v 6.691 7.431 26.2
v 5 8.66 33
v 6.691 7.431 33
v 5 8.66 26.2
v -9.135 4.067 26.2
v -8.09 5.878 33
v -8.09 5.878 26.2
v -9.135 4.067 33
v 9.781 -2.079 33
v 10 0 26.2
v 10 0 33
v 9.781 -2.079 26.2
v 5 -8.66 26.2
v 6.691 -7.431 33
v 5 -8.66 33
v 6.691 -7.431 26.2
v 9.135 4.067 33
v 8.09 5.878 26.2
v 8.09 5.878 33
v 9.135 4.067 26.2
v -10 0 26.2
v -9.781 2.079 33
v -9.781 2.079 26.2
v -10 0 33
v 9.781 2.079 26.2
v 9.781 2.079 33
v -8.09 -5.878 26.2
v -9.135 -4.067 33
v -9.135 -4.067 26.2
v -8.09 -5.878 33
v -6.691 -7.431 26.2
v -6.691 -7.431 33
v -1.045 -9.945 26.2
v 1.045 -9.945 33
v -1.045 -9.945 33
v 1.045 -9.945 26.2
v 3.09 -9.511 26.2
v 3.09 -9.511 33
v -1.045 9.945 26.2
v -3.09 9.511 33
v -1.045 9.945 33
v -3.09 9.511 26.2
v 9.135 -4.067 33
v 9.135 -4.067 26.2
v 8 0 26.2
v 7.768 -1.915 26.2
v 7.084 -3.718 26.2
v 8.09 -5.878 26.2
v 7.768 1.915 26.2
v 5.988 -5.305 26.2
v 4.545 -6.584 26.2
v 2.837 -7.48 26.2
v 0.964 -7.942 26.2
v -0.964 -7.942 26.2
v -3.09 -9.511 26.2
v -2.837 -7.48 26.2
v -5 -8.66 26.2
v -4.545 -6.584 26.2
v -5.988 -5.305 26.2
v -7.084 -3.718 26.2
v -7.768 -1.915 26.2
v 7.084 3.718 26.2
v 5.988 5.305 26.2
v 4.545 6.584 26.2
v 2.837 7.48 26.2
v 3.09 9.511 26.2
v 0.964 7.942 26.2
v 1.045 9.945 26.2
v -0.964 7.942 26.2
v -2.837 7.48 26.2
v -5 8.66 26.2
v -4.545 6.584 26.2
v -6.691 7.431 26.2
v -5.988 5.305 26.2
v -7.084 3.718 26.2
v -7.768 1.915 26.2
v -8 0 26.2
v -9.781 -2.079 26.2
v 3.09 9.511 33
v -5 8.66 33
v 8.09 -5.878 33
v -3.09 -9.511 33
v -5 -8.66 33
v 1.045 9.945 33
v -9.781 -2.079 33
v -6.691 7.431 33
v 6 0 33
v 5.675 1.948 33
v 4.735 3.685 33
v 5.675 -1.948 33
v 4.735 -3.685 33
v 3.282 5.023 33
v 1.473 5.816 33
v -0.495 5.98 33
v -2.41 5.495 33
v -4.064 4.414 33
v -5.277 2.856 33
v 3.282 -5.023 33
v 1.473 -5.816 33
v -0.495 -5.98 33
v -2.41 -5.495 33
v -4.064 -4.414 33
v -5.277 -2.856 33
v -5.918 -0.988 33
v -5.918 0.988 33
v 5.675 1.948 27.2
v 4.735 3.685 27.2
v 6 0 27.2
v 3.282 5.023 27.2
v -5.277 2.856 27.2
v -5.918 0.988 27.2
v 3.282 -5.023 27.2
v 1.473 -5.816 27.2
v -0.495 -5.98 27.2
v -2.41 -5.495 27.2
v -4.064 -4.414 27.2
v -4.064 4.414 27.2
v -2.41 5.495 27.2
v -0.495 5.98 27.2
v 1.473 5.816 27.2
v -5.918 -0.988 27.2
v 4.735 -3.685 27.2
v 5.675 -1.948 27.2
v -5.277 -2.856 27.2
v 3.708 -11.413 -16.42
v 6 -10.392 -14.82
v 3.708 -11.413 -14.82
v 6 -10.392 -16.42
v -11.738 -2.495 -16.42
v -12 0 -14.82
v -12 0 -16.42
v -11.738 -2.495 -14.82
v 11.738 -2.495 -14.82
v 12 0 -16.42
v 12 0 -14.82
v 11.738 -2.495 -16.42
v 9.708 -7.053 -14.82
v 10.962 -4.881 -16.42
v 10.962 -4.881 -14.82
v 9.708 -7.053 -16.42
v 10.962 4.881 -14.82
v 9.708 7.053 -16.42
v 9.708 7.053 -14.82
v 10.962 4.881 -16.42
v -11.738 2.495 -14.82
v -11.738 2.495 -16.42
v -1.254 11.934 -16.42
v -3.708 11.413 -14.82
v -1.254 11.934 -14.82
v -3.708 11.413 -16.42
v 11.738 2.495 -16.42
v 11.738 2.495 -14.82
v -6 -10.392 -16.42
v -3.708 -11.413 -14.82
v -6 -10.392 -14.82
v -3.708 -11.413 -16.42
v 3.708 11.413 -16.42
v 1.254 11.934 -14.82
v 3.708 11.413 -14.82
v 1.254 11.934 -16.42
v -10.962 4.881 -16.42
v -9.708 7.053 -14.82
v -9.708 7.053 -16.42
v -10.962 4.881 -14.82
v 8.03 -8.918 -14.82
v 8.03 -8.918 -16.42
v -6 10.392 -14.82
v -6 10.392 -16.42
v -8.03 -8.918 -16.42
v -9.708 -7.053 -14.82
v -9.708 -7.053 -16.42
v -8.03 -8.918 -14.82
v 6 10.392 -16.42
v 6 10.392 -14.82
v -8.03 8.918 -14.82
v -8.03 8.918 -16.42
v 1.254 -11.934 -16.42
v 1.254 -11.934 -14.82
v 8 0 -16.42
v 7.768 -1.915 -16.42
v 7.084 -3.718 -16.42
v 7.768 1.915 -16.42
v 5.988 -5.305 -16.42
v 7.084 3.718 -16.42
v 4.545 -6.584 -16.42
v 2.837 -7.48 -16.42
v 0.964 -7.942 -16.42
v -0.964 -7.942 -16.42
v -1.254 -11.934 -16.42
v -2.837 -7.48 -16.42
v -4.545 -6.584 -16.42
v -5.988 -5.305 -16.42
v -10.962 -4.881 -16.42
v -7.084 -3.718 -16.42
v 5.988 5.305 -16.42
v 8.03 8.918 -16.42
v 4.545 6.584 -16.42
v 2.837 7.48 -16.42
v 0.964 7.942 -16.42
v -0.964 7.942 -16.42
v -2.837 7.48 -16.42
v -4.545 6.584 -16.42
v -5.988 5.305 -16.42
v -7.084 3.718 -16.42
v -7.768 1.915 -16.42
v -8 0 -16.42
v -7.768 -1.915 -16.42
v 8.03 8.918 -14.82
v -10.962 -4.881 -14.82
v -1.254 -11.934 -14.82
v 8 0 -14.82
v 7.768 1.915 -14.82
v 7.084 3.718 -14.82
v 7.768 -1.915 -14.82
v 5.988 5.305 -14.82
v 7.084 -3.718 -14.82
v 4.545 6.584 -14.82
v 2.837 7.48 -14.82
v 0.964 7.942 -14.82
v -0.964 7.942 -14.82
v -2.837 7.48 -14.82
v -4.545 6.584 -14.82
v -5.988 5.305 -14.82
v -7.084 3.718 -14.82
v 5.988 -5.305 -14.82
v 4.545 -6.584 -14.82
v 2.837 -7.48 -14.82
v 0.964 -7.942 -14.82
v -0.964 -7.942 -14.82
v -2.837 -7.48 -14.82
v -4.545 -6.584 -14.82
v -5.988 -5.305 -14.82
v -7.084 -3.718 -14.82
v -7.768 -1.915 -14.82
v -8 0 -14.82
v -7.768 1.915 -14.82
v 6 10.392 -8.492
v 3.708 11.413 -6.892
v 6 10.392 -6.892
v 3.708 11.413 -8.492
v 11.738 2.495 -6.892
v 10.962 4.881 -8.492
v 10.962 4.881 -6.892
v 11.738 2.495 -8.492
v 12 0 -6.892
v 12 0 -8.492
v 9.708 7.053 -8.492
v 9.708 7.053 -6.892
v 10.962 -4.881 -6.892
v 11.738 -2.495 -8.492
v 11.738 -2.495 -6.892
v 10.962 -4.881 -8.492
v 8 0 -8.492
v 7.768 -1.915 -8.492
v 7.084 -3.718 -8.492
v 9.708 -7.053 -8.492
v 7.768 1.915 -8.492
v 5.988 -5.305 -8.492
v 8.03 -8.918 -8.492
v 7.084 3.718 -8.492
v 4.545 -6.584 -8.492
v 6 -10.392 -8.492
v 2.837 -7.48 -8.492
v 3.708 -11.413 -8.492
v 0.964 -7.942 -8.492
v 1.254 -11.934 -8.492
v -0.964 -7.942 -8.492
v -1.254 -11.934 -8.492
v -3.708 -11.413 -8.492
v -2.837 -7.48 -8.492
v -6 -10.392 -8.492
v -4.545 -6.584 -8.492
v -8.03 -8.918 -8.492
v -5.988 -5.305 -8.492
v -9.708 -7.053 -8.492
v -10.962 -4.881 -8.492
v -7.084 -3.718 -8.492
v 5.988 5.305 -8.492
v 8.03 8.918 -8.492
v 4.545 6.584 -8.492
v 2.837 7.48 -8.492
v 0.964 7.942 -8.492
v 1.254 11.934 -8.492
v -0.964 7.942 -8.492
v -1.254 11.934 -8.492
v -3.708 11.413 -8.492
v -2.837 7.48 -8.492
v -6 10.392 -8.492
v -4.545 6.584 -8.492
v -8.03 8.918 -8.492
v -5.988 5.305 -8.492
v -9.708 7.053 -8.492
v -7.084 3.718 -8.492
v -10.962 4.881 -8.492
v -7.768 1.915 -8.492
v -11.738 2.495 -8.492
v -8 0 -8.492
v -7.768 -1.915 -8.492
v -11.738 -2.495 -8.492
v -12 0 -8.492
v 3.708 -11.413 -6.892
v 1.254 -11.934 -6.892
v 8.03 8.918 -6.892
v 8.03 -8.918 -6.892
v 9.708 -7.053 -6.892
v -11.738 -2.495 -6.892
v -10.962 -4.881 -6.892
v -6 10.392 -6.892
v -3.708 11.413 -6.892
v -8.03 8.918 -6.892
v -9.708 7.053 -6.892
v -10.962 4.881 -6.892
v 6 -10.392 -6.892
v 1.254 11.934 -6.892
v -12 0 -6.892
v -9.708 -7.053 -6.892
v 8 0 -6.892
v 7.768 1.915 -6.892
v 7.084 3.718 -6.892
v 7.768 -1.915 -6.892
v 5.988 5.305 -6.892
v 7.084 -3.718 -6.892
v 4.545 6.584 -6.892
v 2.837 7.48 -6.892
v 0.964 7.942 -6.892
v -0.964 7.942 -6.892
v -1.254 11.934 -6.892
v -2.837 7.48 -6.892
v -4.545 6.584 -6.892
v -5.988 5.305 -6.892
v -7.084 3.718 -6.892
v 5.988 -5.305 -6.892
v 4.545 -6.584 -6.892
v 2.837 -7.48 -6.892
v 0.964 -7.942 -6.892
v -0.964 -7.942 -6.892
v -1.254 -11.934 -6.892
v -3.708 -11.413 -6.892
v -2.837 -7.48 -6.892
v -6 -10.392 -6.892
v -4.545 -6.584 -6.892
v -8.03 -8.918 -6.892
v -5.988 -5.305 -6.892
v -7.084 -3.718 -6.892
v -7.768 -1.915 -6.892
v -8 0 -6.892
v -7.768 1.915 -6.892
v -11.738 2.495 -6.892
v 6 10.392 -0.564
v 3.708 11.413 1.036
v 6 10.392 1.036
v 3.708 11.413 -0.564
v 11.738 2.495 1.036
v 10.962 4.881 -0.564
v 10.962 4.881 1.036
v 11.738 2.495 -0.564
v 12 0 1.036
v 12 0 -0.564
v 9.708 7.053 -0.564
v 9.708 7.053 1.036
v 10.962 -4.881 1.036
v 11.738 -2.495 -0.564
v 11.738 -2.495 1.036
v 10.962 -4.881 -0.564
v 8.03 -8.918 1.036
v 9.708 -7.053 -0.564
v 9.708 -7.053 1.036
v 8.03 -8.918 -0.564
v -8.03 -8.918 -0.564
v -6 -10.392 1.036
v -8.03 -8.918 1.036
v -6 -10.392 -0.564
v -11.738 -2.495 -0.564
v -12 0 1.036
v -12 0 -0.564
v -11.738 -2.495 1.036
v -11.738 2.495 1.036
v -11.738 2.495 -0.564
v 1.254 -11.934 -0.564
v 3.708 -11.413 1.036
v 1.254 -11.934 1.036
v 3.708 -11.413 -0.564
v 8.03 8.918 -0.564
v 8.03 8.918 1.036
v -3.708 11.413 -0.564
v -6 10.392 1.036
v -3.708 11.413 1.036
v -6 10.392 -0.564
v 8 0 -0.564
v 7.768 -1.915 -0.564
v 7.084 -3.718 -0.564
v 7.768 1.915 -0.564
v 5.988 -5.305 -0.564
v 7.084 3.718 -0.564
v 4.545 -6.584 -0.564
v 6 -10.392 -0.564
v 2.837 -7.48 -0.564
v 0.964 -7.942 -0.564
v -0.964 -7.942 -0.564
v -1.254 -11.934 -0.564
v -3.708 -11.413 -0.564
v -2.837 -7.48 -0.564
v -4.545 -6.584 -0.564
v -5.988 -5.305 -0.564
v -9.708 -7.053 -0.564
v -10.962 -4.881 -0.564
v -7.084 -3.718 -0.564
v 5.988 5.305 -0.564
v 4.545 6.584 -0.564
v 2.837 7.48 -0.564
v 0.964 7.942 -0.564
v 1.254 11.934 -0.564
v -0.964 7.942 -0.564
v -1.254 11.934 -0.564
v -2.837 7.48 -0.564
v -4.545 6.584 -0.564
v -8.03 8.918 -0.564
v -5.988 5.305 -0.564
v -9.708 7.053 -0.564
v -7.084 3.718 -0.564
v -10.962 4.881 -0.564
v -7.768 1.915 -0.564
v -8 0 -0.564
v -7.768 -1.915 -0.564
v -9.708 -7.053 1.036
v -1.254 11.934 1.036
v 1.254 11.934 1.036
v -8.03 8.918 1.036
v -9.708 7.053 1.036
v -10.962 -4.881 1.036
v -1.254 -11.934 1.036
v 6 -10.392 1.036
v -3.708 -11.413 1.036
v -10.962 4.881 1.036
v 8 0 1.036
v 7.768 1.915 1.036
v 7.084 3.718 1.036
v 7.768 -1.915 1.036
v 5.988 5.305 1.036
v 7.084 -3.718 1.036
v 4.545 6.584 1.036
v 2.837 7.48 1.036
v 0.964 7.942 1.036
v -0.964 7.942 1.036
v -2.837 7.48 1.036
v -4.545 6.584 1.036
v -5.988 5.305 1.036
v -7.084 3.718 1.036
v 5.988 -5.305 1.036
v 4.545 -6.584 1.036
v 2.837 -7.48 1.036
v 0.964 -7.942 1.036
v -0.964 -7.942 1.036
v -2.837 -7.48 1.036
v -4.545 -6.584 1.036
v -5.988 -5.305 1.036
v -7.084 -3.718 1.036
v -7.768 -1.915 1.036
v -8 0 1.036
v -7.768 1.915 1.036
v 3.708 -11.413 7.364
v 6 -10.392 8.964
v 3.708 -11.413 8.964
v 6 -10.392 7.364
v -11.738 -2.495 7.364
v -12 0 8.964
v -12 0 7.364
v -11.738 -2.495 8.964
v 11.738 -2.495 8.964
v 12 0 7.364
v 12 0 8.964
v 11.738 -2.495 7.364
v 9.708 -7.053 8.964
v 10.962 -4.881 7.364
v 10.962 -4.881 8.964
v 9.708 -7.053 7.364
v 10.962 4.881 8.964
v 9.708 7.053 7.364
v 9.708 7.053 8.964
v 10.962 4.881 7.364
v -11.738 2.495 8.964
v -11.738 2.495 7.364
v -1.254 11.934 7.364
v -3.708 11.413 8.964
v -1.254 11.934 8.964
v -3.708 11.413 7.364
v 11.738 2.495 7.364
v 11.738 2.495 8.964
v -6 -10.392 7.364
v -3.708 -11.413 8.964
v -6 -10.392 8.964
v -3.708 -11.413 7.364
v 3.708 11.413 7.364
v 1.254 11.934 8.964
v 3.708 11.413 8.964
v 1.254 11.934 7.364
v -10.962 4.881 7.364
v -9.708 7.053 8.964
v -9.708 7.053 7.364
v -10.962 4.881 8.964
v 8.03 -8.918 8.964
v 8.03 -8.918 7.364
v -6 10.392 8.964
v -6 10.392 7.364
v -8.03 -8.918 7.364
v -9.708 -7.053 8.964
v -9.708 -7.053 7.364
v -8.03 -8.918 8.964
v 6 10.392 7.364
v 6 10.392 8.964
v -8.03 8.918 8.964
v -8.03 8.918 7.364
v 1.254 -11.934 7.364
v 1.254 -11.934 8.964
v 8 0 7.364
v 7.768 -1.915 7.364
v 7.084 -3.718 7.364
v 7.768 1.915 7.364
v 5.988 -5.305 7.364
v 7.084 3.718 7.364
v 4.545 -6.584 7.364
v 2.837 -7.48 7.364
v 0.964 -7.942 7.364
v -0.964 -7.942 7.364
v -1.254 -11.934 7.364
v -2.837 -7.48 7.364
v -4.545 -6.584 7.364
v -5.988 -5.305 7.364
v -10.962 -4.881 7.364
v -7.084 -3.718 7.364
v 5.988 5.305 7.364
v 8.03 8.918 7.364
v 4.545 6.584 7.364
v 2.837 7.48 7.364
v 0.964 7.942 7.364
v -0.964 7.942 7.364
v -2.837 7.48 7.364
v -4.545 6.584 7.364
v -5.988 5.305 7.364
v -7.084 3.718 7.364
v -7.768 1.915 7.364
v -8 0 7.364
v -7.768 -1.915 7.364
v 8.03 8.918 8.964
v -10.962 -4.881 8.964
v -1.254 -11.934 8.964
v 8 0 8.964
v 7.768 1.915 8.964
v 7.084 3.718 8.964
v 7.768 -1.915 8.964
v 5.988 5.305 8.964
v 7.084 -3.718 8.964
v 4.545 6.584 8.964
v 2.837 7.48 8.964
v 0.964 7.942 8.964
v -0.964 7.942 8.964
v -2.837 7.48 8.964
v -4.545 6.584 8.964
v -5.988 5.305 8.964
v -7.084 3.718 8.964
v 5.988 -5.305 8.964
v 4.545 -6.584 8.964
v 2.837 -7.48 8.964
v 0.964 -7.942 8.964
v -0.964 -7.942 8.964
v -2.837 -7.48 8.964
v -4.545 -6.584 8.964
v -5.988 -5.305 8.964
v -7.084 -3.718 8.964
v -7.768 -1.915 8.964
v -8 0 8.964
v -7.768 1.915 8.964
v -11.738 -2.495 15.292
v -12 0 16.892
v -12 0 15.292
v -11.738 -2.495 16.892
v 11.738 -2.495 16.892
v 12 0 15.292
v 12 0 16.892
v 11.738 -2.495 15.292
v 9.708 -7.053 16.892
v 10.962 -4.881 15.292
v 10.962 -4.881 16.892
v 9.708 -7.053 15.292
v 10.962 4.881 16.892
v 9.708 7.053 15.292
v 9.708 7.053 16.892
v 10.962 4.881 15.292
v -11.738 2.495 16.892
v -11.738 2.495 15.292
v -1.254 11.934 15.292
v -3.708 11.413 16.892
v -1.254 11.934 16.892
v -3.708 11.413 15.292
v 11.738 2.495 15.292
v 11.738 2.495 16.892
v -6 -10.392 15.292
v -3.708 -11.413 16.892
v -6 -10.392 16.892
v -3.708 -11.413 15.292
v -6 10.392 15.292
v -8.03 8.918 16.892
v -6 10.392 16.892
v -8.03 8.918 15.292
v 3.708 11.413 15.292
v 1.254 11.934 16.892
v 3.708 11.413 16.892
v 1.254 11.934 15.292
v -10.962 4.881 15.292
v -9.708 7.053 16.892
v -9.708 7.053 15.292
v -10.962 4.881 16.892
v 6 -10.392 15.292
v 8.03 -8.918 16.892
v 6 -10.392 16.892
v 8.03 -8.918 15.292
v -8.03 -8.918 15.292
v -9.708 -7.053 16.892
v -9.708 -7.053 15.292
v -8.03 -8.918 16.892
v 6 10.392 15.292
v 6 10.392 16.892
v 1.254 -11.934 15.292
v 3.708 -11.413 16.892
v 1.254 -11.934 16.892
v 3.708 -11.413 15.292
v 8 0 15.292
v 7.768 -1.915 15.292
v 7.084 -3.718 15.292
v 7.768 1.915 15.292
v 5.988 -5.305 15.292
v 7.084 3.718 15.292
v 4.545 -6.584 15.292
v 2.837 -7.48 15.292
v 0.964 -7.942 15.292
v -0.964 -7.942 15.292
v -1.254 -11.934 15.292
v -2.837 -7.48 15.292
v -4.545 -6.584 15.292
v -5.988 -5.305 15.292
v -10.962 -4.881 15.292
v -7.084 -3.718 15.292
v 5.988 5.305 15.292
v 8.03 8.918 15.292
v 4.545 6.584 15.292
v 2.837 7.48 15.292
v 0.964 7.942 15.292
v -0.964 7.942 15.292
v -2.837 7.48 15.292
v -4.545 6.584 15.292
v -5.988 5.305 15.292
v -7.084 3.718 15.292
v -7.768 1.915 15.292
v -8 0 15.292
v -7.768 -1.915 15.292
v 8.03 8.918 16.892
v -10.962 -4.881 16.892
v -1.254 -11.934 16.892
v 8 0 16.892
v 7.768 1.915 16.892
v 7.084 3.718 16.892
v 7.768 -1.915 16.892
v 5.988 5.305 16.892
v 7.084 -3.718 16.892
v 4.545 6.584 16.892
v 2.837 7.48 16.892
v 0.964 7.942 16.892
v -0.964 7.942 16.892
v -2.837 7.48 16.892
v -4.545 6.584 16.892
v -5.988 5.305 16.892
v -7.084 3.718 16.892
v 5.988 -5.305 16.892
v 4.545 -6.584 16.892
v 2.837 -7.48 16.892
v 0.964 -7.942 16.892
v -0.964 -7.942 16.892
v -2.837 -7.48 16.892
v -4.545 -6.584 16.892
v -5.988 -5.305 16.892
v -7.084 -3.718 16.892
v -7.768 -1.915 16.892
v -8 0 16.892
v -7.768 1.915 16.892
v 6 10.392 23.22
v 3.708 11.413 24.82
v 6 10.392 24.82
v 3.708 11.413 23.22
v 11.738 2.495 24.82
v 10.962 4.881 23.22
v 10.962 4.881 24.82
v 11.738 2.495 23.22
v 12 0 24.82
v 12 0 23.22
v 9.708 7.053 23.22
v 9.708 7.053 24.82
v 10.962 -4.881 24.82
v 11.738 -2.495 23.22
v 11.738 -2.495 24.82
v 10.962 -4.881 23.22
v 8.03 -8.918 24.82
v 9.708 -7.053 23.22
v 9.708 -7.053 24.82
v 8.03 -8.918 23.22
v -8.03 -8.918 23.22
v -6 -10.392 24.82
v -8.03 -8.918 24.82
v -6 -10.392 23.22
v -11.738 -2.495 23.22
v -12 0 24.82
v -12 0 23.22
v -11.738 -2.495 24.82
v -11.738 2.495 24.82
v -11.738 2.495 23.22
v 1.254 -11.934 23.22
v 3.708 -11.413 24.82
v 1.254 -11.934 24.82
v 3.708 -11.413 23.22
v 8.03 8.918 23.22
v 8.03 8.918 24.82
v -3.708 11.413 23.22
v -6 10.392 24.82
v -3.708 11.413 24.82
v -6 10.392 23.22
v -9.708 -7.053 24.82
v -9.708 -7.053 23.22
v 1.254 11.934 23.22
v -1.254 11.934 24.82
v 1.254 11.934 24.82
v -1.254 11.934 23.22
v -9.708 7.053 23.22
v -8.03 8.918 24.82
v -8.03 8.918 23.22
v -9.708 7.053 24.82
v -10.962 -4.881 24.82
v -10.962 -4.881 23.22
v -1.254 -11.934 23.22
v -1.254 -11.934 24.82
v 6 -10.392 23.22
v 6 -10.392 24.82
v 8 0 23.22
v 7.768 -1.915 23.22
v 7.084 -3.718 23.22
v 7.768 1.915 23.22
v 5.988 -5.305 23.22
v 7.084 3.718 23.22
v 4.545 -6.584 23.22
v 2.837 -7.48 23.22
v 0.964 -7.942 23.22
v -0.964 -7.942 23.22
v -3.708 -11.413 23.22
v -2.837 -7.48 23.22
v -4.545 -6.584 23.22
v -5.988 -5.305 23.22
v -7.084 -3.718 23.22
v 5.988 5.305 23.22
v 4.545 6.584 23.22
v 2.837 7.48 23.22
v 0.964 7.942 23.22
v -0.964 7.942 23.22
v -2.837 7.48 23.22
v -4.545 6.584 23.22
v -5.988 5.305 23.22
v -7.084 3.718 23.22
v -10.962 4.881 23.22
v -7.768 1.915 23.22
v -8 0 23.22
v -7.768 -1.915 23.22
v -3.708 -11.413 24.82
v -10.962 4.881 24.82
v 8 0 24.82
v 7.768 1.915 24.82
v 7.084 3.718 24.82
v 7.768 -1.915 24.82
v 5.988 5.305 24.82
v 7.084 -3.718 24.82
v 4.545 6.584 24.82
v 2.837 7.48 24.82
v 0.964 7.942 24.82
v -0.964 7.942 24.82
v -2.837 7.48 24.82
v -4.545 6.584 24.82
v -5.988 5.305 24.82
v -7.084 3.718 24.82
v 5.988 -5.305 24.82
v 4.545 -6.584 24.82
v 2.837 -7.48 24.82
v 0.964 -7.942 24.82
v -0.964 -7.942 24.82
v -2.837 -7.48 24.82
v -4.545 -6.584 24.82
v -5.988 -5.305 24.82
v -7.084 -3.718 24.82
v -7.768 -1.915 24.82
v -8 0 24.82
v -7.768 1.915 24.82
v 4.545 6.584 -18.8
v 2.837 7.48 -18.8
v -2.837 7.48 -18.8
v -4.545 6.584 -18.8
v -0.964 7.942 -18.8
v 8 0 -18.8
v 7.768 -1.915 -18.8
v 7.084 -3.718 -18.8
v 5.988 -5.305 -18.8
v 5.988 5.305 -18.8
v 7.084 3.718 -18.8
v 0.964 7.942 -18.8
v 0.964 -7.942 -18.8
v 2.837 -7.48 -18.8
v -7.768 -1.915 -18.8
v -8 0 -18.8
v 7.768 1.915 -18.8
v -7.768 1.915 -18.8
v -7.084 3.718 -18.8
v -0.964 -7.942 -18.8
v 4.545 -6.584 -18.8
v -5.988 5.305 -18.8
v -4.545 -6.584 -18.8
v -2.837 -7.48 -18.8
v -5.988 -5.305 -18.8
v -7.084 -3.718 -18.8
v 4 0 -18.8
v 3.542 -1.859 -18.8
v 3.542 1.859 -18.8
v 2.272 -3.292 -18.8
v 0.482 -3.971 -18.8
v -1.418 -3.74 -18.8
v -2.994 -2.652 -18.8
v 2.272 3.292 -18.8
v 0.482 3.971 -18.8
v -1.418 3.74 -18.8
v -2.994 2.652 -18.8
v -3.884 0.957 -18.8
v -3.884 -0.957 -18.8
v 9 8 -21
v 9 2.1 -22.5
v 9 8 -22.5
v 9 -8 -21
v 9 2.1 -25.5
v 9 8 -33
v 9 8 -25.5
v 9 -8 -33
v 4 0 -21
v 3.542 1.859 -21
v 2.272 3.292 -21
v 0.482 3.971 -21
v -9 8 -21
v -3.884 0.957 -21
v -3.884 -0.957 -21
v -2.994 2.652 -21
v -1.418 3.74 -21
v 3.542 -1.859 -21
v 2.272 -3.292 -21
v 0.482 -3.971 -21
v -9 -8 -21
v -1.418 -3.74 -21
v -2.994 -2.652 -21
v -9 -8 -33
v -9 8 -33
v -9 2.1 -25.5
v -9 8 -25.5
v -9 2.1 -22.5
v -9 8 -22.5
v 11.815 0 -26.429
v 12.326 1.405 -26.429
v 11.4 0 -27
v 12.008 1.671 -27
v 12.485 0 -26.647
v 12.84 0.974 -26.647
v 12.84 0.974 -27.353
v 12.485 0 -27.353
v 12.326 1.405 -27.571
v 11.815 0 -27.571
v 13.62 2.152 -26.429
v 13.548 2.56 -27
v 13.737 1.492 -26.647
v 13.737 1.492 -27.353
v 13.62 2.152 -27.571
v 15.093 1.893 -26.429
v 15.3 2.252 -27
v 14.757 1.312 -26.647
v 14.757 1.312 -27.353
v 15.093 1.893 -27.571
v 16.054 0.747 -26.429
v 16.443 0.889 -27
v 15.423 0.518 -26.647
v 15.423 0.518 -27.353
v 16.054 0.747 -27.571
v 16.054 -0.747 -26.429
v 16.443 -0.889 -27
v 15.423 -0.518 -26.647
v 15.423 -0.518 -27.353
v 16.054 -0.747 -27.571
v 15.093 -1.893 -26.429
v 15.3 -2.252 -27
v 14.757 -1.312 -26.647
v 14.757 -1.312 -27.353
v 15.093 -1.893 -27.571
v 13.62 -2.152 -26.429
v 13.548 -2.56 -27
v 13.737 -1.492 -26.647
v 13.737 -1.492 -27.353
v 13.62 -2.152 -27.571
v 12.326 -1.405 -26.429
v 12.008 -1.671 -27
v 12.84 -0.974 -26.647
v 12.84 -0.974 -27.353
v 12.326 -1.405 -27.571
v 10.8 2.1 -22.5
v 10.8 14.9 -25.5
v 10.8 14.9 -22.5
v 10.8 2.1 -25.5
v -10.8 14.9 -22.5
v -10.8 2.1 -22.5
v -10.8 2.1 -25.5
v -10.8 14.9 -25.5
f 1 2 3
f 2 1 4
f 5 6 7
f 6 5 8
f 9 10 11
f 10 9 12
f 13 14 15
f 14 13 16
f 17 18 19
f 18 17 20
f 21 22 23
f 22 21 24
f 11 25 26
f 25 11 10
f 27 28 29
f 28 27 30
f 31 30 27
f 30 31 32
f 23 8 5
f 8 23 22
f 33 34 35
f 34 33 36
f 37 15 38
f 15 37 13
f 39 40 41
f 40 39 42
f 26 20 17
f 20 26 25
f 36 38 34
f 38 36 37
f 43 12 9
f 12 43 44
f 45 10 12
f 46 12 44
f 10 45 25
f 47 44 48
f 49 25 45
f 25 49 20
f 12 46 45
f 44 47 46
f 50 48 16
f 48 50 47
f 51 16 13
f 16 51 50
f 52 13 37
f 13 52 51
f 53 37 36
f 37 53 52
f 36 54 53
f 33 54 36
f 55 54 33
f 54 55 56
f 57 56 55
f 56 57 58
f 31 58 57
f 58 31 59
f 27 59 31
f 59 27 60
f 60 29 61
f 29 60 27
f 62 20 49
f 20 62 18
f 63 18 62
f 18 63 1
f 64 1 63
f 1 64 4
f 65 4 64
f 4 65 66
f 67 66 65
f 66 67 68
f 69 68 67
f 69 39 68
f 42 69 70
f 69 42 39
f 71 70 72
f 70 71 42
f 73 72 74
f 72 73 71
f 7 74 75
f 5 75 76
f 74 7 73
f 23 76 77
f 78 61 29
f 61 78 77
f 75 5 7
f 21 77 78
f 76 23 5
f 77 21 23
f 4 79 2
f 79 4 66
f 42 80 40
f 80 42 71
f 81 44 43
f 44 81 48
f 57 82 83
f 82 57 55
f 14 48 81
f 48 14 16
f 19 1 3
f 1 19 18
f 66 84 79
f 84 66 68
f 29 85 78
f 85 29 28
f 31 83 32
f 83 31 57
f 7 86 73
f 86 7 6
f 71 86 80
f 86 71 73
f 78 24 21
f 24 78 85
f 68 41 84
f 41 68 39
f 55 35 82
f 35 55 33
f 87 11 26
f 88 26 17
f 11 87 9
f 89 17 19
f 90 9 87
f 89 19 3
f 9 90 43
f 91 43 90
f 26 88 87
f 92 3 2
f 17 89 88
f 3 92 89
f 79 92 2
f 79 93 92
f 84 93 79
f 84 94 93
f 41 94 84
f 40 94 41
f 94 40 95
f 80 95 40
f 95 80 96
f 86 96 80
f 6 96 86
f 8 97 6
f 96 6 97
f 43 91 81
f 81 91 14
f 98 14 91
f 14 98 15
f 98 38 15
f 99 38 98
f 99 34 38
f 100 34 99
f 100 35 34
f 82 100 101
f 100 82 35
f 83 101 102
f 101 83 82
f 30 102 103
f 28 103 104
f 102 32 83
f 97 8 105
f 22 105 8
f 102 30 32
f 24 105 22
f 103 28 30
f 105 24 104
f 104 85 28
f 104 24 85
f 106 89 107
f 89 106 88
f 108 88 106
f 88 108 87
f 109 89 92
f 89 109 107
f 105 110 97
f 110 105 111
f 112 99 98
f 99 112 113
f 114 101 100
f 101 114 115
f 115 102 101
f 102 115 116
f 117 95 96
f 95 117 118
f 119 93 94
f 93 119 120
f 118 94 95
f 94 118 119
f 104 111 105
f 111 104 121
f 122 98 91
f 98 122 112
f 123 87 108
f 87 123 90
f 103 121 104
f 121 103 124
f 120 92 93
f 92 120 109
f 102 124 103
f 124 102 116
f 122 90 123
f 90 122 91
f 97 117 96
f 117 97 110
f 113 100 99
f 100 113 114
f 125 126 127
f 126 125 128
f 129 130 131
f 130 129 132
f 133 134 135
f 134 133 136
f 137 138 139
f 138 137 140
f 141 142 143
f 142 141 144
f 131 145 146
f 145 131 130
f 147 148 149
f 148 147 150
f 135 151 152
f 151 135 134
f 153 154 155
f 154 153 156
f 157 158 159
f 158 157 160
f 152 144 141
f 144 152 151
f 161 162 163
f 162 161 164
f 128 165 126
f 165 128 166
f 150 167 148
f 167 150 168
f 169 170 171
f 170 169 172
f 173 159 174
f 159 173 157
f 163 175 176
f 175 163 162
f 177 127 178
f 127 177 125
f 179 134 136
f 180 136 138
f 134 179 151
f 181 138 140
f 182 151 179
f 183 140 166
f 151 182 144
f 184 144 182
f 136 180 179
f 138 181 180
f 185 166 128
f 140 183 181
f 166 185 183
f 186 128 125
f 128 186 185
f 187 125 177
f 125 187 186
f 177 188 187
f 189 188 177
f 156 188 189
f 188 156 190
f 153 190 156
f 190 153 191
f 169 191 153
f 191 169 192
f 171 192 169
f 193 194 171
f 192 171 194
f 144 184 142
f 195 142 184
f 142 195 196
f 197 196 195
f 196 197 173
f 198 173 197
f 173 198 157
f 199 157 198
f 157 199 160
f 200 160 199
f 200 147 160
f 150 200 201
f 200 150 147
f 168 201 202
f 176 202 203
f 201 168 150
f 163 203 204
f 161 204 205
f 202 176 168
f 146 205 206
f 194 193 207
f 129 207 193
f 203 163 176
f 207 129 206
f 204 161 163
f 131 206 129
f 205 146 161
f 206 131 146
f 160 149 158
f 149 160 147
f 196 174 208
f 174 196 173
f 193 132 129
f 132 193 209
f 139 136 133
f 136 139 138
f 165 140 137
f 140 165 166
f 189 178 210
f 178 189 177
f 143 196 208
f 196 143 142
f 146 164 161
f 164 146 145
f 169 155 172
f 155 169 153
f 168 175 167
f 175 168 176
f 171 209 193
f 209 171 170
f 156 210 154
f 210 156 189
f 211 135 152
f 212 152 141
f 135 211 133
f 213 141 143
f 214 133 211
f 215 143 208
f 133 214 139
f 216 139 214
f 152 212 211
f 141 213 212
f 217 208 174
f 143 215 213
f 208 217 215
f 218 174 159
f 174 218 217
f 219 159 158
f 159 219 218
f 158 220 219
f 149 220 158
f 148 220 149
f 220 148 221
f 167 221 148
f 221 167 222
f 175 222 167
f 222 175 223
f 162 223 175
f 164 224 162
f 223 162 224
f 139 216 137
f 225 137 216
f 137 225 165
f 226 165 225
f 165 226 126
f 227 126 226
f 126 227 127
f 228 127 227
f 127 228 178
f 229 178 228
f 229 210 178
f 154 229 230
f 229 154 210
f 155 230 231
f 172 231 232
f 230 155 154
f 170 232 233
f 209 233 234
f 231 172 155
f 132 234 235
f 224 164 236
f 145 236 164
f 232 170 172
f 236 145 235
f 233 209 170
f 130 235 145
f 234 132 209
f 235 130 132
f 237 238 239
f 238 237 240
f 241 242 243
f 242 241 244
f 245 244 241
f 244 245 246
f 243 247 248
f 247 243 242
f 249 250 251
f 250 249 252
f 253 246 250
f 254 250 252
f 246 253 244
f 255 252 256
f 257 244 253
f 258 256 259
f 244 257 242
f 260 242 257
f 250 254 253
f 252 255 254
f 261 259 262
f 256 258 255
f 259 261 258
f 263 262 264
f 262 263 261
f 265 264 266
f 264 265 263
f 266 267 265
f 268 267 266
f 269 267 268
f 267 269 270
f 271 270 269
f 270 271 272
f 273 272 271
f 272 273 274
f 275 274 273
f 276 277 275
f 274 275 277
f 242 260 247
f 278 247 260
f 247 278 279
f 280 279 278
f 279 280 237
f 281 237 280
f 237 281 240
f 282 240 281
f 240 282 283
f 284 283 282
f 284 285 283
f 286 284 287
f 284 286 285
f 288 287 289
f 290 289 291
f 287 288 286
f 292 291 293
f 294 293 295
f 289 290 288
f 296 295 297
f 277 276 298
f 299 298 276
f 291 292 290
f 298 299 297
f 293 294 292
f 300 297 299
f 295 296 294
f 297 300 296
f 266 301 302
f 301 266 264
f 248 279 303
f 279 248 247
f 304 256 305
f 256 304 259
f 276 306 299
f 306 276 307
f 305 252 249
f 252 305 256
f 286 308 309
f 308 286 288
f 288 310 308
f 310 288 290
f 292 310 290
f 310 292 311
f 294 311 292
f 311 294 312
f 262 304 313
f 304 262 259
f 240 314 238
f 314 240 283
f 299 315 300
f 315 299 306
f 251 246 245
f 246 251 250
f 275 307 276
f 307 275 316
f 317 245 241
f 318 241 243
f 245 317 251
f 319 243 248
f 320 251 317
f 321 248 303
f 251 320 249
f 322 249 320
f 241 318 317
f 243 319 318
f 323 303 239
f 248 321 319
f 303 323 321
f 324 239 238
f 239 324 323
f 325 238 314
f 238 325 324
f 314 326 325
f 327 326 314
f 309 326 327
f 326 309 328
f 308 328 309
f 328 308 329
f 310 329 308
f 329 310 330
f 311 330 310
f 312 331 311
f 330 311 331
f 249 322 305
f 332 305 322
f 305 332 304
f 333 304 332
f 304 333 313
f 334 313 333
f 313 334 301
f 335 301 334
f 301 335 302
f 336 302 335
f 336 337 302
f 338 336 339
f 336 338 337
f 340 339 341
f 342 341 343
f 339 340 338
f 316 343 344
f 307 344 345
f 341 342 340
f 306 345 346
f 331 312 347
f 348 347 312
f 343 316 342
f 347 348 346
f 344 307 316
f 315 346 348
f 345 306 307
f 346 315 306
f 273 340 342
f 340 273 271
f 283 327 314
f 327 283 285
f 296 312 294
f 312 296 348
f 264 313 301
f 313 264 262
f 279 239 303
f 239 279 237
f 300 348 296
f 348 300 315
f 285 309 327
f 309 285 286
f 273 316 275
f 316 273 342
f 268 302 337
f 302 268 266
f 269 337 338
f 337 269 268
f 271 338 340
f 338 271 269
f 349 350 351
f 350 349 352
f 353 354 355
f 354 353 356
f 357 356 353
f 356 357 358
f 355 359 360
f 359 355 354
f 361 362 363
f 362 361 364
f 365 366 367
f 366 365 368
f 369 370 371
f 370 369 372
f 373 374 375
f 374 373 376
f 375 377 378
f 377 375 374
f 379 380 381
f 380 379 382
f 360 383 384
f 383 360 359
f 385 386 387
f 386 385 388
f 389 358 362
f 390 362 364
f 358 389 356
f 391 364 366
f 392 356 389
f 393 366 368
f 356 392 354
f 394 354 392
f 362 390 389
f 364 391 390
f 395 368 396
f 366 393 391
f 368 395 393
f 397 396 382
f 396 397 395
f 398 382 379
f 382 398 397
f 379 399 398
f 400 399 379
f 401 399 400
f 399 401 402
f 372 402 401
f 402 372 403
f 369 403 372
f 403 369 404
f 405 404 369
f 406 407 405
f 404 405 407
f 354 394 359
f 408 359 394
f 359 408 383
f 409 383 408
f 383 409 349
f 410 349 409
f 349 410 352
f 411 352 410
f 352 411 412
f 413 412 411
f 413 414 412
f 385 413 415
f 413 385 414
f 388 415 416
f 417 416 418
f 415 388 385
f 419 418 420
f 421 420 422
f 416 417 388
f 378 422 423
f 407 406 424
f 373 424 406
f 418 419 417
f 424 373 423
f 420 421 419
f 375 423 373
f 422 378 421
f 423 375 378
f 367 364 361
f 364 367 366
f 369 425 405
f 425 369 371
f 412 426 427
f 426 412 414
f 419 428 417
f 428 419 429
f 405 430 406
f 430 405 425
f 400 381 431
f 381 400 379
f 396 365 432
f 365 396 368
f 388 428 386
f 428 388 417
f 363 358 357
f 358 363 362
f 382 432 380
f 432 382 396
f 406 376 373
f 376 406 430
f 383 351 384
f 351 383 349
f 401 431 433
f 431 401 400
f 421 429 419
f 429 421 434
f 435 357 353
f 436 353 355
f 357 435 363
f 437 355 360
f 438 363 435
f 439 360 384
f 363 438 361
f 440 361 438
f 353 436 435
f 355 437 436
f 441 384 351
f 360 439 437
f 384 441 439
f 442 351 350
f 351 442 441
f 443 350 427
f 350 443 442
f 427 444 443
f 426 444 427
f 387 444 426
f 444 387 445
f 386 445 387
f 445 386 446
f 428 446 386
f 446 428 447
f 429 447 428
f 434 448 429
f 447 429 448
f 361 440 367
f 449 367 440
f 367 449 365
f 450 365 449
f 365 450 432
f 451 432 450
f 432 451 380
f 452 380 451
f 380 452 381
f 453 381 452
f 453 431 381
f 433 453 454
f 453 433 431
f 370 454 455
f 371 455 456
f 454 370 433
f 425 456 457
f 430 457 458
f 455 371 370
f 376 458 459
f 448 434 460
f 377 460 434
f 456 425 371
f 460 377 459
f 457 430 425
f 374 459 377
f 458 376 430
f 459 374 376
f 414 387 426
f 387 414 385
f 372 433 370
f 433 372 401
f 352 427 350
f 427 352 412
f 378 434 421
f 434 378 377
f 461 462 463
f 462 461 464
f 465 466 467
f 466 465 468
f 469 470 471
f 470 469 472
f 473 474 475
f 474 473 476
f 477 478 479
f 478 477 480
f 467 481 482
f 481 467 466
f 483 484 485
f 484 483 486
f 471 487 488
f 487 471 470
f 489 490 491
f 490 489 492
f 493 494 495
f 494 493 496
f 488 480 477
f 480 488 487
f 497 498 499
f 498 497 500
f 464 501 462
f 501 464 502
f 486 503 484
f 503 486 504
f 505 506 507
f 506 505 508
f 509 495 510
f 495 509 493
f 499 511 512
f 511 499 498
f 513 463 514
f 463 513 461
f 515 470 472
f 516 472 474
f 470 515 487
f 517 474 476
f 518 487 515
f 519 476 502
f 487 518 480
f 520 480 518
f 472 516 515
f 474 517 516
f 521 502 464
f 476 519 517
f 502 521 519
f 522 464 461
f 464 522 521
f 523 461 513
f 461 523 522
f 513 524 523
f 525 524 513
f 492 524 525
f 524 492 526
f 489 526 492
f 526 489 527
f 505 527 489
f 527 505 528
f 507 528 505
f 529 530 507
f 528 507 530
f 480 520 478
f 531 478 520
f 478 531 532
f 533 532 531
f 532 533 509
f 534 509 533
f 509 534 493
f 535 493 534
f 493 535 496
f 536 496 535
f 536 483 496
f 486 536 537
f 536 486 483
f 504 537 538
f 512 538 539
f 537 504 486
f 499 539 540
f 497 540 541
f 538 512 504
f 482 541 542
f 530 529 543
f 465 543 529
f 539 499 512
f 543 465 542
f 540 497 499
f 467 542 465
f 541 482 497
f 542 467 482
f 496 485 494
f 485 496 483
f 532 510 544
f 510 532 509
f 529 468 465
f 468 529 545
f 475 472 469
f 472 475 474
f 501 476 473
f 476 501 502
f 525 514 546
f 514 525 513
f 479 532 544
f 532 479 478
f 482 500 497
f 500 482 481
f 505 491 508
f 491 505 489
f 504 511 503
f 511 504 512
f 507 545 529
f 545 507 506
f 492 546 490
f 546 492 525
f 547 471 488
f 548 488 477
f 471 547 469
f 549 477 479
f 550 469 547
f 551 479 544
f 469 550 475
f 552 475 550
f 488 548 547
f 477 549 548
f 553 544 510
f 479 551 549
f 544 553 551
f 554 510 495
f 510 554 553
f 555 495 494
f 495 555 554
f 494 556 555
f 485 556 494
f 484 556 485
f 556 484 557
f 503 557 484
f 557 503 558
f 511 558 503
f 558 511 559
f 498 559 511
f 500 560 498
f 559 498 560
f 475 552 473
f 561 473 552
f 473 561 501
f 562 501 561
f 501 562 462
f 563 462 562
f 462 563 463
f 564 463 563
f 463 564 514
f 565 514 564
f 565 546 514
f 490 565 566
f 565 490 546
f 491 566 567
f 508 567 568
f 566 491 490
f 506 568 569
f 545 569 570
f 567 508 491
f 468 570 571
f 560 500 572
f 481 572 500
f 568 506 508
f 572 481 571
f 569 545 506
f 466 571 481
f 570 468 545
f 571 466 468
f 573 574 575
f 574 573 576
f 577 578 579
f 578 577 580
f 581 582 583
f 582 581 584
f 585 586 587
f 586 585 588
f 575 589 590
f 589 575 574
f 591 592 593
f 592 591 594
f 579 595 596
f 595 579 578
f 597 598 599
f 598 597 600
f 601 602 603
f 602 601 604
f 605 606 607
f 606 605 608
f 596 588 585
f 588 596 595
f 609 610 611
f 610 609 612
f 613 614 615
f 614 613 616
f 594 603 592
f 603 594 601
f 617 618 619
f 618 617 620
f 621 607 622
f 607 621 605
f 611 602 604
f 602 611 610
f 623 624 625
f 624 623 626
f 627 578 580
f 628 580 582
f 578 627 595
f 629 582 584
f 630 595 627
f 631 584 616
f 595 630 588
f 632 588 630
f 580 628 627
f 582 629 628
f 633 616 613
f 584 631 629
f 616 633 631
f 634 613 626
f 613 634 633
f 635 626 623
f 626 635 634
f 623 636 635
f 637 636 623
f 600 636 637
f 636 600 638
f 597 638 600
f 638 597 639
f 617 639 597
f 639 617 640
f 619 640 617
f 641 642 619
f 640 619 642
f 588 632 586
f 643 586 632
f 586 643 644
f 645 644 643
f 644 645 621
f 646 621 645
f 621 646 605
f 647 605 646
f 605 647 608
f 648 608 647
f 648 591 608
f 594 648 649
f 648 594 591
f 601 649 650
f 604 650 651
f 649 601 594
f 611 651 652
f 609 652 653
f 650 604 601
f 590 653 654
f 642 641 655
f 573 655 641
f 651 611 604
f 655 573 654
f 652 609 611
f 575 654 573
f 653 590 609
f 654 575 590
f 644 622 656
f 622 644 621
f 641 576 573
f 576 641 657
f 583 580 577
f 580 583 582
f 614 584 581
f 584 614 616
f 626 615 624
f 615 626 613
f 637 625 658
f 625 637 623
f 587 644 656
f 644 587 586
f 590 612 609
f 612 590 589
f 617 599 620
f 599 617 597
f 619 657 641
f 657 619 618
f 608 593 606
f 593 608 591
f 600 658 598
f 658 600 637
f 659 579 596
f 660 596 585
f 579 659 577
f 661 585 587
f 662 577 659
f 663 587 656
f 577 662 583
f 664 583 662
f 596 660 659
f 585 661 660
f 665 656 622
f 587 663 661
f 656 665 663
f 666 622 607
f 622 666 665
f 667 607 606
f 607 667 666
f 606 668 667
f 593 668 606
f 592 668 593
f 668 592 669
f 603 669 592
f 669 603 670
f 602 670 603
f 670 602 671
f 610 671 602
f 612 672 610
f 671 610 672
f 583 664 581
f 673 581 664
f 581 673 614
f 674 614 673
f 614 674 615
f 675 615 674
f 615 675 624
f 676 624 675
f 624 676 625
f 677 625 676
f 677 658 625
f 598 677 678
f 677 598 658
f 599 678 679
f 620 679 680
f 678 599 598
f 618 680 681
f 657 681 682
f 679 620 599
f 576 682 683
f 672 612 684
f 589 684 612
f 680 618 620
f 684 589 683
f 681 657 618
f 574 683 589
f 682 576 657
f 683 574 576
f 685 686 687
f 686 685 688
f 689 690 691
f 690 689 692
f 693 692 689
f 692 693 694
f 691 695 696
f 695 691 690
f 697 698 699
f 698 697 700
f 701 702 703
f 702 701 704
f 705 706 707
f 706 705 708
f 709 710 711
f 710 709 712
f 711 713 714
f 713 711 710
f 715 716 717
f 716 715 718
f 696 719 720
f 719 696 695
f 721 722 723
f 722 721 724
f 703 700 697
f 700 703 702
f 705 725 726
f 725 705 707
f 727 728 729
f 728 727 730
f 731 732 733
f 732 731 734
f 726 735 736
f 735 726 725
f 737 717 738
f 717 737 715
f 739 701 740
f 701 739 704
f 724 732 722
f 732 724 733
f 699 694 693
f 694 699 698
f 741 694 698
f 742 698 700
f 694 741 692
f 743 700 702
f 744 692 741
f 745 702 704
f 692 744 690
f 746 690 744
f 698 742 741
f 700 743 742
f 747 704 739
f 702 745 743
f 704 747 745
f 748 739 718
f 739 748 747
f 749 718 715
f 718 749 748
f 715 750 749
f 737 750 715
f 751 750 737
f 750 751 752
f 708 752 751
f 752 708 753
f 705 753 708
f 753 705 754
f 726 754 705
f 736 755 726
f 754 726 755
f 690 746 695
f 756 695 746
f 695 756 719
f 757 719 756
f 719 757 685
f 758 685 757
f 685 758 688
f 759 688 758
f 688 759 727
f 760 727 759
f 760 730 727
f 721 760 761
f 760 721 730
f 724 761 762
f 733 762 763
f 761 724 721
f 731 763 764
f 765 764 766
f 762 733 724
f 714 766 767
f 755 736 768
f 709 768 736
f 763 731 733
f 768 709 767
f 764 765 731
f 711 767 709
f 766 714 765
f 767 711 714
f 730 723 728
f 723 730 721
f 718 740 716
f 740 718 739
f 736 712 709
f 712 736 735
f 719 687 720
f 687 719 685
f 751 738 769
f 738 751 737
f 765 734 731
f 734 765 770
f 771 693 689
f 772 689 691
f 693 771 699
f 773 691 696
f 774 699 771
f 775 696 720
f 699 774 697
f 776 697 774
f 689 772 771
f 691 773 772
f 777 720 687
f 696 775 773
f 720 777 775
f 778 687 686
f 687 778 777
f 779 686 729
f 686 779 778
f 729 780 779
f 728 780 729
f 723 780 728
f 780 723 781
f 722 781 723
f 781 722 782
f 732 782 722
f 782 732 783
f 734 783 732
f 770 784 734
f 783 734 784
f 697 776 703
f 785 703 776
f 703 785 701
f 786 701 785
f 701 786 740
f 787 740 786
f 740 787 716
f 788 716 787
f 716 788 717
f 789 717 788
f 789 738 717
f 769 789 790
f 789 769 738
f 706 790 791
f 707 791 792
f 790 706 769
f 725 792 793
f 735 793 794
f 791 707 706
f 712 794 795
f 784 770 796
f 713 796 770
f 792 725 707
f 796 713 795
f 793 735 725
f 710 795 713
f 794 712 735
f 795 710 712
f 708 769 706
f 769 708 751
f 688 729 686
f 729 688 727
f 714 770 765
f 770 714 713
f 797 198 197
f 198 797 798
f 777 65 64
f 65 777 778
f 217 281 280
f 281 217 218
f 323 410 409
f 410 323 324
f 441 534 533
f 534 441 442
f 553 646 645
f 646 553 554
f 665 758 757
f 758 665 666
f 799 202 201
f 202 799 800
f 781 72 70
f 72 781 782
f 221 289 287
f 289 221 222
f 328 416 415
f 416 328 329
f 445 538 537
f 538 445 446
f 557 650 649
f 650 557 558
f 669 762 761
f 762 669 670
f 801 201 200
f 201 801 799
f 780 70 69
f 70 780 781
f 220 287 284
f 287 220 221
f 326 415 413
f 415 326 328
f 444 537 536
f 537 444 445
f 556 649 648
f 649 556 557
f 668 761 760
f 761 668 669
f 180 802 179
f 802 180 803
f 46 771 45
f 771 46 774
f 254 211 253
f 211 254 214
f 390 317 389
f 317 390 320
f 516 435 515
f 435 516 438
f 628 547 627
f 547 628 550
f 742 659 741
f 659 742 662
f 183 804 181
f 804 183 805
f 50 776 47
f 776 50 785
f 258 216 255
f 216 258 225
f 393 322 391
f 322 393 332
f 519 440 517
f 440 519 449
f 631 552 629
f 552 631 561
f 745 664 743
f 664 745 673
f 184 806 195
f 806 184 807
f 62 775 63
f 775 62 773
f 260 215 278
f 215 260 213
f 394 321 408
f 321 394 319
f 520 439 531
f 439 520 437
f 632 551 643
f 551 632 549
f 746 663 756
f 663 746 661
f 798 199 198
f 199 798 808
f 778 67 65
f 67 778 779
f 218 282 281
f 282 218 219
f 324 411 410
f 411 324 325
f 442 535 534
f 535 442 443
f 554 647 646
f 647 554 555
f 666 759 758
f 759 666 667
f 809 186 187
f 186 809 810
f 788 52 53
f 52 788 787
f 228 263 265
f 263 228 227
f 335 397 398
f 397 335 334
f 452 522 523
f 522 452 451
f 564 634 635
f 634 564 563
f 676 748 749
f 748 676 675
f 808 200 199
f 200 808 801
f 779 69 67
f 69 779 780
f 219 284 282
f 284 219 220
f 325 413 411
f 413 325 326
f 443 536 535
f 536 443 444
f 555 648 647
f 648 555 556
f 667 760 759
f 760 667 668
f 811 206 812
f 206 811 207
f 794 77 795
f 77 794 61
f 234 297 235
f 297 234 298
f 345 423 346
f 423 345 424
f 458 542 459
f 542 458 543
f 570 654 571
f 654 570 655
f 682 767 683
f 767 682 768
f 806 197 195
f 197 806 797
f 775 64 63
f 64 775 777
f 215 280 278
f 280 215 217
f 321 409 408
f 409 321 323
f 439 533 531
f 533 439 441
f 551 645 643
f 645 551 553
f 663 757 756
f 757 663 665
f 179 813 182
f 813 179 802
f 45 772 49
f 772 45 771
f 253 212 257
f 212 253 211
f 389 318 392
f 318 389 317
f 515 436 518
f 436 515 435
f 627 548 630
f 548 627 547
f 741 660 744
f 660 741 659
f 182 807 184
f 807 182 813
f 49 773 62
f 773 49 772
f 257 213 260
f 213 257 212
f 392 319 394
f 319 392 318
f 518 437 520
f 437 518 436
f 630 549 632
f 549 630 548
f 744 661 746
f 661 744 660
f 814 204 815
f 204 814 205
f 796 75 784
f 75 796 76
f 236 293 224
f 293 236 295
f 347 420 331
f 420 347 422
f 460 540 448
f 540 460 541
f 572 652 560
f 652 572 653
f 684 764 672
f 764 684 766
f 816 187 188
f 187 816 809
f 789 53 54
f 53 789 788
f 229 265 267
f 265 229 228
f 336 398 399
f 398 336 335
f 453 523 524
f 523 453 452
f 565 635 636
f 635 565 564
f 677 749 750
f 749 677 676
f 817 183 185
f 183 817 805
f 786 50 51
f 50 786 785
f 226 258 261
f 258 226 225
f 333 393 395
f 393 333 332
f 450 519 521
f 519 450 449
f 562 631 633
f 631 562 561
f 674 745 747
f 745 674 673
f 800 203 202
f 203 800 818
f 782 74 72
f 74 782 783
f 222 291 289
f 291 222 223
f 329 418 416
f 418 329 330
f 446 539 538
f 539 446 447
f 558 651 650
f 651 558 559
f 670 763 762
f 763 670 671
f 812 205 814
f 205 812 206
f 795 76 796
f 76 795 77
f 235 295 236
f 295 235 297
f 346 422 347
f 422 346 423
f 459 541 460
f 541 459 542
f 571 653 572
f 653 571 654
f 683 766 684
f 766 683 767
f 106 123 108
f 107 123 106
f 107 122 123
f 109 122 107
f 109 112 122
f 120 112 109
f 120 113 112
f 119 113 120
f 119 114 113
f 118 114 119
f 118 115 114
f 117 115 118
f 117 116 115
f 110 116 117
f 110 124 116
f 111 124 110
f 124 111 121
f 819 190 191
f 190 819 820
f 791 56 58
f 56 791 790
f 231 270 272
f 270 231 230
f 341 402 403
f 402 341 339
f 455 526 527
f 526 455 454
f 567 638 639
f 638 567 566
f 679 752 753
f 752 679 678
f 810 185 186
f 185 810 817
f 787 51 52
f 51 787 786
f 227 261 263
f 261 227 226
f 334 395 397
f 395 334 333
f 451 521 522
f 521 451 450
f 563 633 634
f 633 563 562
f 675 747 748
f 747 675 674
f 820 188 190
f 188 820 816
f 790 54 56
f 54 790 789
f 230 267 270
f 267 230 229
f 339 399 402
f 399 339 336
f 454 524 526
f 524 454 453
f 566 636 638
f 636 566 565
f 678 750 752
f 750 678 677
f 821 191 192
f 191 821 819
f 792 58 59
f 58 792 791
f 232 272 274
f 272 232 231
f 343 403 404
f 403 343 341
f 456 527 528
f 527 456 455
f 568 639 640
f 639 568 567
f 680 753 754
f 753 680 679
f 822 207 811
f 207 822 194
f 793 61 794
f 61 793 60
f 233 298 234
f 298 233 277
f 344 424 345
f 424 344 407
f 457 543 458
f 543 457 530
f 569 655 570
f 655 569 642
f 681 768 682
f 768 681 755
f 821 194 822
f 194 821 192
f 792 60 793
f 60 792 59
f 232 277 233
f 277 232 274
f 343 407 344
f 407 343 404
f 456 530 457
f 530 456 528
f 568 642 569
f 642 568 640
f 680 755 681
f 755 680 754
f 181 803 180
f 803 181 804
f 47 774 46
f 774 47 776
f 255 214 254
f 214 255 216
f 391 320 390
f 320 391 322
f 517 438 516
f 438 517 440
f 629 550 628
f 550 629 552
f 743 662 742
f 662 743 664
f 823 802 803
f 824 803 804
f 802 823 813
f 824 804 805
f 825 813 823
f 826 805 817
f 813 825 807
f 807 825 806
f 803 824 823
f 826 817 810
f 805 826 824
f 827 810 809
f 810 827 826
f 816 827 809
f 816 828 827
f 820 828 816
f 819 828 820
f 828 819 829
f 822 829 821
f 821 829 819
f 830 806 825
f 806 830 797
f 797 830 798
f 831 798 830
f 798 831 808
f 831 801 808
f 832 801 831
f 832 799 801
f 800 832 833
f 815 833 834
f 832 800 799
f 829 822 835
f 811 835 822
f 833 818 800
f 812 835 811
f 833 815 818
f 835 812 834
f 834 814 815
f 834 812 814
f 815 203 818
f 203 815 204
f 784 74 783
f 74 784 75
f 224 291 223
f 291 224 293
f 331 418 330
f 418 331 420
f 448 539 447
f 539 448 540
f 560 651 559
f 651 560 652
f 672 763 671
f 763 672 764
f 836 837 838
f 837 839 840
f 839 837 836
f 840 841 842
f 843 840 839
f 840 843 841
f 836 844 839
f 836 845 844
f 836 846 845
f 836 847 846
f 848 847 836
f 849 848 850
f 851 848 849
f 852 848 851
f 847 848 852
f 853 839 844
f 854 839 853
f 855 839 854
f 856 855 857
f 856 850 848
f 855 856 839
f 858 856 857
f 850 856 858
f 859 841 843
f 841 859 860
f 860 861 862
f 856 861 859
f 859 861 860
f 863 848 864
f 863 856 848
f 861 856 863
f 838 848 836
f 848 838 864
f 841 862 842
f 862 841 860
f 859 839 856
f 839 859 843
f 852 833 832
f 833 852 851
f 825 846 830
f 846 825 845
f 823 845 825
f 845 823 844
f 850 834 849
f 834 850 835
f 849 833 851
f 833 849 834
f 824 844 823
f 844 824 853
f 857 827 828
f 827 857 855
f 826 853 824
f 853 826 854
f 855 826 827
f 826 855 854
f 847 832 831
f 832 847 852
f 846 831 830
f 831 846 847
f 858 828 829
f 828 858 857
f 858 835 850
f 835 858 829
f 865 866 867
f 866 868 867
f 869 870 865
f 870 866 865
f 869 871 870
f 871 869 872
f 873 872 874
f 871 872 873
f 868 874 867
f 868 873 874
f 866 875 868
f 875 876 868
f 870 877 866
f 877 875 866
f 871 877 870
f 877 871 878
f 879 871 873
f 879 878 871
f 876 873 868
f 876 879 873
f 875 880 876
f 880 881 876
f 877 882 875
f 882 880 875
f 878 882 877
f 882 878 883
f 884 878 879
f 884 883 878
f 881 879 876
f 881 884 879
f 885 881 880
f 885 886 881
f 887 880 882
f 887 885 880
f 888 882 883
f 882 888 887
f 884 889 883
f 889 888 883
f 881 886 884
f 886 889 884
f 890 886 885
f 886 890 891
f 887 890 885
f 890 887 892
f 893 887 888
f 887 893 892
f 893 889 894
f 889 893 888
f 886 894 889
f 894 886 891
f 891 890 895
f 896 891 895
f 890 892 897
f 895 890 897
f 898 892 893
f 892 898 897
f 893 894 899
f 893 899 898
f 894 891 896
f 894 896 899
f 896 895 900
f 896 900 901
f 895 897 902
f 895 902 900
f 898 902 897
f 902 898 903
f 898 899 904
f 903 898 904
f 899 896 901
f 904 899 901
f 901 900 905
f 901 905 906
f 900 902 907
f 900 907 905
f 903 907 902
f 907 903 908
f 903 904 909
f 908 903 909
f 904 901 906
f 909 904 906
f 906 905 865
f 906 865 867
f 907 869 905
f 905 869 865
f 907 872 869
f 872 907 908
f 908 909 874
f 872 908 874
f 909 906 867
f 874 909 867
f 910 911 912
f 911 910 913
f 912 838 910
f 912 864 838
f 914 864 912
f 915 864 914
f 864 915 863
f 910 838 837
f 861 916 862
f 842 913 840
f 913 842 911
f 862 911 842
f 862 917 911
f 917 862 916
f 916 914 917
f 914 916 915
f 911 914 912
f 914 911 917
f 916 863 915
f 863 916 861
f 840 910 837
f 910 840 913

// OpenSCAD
// Parameters
total_length_mm = 66; //[33:132:1]
mount_inset_mm = 6.8; //[3.4:13.6:0.1]
insulator_diameter_mm = 16; //[8:32:0.5]
insulator_length_mm = 46; //[23:92:1]
mounting_groove_diameter_mm = 12; //[6:24:0.5]
mounting_groove_length_mm = 5.6; //[2.8:11.2:0.1]
overlap_mm = 1; //[0.5:2:0.1]
top_flange_diameter_mm = 20; //[10:40:0.5]
top_flange_thickness_mm = 6.8; //[3.4:13.6:0.1]
fin_outer_diameter_mm = 24; //[12:48:0.5]
fin_thickness_mm = 1.6; //[0.8:3.2:0.1]
fin_count = 6; //[3:10:1]
heater_block_size_x_mm = 18; //[9:36:0.5]
heater_block_size_y_mm = 16; //[8:32:0.5]
heater_block_height_mm = 12; //[6:24:0.5]
nozzle_hex_diameter_mm = 8; //[4:16:0.5]
nozzle_hex_height_mm = 4; //[2:8:0.5]
nozzle_tip_height_mm = 6; //[3:12:0.5]
resistor_wire_radius_mm = 2; //[1:4:0.1]
resistor_wire_thickness_mm = 1.2; //[0.6:2.4:0.1]
resistor_wire_offset_x_mm = 6; //[3:12:0.5]

// Hot End - complete geometry
module hot_end() {
  color("Silver") {
    // Top Flange
    translate([0, 0, total_length_mm/2 - top_flange_thickness_mm/2])
      difference() {
        cylinder(r=top_flange_diameter_mm/2, h=top_flange_thickness_mm, center=true);
        translate([0, 0, 0])
          cylinder(r=mounting_groove_diameter_mm/2, h=mounting_groove_length_mm + 2*overlap_mm, center=true);
      }
    
    // Insulator Body
    translate([0, 0, total_length_mm/2 - mount_inset_mm - insulator_length_mm/2 + overlap_mm])
      cylinder(r=insulator_diameter_mm/2, h=insulator_length_mm, center=true);
    
    // Fins
    for (i = [0:fin_count-1]) {
      translate([0, 0, total_length_mm/2 - mount_inset_mm - insulator_length_mm/2 + overlap_mm - insulator_length_mm/2 + (mount_inset_mm*0.35) + (fin_thickness_mm/2) + (insulator_length_mm - mount_inset_mm*0.7 - fin_thickness_mm) * (i/(fin_count-1))])
        cylinder(r=fin_outer_diameter_mm/2, h=fin_thickness_mm, center=true);
    }
    
    // Heater Block
    translate([0, 0, -total_length_mm/2 + heater_block_height_mm/2])
      cube([heater_block_size_x_mm, heater_block_size_y_mm, heater_block_height_mm], center=true);
    
    // Nozzle Hex
    translate([0, 0, -total_length_mm/2 + heater_block_height_mm + nozzle_hex_height_mm/2 - overlap_mm])
      cylinder(r=nozzle_hex_diameter_mm/2, h=nozzle_hex_height_mm, center=true);
    
    // Nozzle Tip
    translate([0, 0, -total_length_mm/2 + heater_block_height_mm + nozzle_hex_height_mm + nozzle_tip_height_mm/2 - 2*overlap_mm])
      cylinder(r1=nozzle_hex_diameter_mm/2, r2=0, h=nozzle_tip_height_mm, center=true);
    
    // Resistor Wire Loop
    rotate([0, 0, 0])
      translate([heater_block_size_x_mm/2 + resistor_wire_offset_x_mm - overlap_mm, 0, -total_length_mm/2 + heater_block_height_mm/2])
        rotate_extrude() translate([resistor_wire_radius_mm, 0, 0]) circle(r=resistor_wire_thickness_mm/2);
  }
}

// PCB Mount - complete geometry
module pcb_mount() {
  color("DimGray") {
    // Mounting Plate
    translate([0, heater_block_size_y_mm/2 + (heater_block_height_mm*0.25)/2 - overlap_mm, -total_length_mm/2 + heater_block_height_mm*0.75])
      cube([heater_block_size_x_mm*1.2, heater_block_size_y_mm*0.8, heater_block_height_mm*0.25], center=true);
  }
}

// PCB Mount Assembly - complete geometry
module pcb_mount_assembly() {
  color("DimGray") {
    pcb_mount();
  }
}

// E3D Hot End Assembly - complete geometry
module e3d_hot_end_assembly() {
  color("Silver") {
    hot_end();
  }
}

// E3D Hot End - complete geometry
module e3d_hot_end() {
  color("Silver") {
    hot_end();
  }
}

// Assembly
module assembly() {
  e3d_hot_end_assembly();
  pcb_mount_assembly();
}

assembly();
